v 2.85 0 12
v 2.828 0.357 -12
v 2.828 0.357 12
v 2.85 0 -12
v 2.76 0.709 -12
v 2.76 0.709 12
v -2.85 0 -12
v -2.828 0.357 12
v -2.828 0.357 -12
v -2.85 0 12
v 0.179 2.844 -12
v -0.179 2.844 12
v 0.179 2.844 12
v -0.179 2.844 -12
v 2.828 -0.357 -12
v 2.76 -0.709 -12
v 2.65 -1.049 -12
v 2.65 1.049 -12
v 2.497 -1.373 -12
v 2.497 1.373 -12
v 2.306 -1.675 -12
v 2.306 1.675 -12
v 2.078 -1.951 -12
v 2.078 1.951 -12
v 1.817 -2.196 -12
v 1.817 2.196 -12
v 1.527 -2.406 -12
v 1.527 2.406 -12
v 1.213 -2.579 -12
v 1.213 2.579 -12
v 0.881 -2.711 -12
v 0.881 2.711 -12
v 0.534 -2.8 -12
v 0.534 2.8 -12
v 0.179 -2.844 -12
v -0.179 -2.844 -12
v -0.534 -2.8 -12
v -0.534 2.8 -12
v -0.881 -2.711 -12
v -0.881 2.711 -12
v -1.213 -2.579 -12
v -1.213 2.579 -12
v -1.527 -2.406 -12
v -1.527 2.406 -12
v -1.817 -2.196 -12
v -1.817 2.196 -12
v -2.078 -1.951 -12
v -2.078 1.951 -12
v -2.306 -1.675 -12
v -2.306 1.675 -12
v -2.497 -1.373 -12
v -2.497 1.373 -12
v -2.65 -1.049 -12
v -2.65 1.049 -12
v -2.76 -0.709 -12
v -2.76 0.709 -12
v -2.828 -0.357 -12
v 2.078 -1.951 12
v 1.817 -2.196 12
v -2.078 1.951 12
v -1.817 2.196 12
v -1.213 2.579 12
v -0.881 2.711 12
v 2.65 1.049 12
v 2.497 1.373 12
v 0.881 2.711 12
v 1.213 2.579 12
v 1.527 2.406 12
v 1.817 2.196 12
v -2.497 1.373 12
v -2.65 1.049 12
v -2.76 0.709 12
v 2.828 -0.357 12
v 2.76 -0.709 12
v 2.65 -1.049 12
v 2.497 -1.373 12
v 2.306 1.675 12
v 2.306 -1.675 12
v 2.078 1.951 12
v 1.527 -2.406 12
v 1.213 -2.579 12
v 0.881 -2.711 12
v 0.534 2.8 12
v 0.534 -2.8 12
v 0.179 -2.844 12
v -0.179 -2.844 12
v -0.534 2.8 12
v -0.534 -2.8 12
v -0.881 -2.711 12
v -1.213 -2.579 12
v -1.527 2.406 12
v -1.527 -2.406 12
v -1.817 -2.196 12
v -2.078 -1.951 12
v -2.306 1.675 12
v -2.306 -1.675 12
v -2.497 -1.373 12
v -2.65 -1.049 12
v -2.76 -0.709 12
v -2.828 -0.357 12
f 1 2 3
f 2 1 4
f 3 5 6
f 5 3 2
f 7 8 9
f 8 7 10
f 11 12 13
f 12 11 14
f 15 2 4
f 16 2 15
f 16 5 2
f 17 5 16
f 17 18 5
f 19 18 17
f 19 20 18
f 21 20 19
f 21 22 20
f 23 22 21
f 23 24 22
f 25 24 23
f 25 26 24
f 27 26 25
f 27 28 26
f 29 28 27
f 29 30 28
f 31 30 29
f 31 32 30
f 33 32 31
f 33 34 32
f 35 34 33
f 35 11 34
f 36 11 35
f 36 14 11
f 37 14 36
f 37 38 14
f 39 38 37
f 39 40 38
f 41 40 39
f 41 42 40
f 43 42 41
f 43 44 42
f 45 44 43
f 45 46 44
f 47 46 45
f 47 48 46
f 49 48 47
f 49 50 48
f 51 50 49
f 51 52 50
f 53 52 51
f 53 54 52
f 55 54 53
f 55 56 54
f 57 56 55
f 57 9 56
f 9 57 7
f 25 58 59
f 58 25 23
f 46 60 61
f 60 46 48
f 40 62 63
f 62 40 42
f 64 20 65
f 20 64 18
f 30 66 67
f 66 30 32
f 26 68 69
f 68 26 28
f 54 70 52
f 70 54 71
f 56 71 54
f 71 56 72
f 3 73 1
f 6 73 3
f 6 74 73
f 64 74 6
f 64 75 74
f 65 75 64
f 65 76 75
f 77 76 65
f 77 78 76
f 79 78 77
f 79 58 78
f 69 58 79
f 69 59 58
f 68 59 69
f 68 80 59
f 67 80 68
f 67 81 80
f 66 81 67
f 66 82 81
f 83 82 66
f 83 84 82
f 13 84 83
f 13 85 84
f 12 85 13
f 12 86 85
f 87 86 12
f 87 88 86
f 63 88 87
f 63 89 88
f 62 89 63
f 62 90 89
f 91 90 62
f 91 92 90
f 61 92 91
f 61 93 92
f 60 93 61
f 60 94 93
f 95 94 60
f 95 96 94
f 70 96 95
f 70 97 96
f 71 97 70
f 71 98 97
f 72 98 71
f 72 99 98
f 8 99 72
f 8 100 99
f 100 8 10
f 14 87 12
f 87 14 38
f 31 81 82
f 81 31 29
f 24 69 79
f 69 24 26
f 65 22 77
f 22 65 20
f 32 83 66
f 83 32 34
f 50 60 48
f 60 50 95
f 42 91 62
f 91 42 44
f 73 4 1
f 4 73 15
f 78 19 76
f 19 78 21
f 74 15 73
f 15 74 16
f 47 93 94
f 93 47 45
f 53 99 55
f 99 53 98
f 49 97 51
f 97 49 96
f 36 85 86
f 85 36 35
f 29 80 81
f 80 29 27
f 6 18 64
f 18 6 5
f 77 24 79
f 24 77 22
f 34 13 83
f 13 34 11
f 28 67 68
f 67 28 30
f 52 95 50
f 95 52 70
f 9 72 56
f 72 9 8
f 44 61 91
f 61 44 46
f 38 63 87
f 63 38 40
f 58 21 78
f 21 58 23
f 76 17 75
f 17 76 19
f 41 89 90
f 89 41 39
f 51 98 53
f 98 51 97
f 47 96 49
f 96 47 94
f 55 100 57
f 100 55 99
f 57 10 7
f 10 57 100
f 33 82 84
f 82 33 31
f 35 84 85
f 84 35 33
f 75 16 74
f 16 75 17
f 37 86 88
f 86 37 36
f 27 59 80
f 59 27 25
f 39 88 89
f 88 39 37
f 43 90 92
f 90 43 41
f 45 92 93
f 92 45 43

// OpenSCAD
$fn = 50;


difference() {
	union() {
		translate(v = [0, 0, -12.0000000000]) {
			cylinder(h = 24, r = 2.8500000000);
		}
	}
	union() {
		translate(v = [0, 0, -100.0000000000]) {
			cylinder(h = 200, r = 0);
		}
	}
}
